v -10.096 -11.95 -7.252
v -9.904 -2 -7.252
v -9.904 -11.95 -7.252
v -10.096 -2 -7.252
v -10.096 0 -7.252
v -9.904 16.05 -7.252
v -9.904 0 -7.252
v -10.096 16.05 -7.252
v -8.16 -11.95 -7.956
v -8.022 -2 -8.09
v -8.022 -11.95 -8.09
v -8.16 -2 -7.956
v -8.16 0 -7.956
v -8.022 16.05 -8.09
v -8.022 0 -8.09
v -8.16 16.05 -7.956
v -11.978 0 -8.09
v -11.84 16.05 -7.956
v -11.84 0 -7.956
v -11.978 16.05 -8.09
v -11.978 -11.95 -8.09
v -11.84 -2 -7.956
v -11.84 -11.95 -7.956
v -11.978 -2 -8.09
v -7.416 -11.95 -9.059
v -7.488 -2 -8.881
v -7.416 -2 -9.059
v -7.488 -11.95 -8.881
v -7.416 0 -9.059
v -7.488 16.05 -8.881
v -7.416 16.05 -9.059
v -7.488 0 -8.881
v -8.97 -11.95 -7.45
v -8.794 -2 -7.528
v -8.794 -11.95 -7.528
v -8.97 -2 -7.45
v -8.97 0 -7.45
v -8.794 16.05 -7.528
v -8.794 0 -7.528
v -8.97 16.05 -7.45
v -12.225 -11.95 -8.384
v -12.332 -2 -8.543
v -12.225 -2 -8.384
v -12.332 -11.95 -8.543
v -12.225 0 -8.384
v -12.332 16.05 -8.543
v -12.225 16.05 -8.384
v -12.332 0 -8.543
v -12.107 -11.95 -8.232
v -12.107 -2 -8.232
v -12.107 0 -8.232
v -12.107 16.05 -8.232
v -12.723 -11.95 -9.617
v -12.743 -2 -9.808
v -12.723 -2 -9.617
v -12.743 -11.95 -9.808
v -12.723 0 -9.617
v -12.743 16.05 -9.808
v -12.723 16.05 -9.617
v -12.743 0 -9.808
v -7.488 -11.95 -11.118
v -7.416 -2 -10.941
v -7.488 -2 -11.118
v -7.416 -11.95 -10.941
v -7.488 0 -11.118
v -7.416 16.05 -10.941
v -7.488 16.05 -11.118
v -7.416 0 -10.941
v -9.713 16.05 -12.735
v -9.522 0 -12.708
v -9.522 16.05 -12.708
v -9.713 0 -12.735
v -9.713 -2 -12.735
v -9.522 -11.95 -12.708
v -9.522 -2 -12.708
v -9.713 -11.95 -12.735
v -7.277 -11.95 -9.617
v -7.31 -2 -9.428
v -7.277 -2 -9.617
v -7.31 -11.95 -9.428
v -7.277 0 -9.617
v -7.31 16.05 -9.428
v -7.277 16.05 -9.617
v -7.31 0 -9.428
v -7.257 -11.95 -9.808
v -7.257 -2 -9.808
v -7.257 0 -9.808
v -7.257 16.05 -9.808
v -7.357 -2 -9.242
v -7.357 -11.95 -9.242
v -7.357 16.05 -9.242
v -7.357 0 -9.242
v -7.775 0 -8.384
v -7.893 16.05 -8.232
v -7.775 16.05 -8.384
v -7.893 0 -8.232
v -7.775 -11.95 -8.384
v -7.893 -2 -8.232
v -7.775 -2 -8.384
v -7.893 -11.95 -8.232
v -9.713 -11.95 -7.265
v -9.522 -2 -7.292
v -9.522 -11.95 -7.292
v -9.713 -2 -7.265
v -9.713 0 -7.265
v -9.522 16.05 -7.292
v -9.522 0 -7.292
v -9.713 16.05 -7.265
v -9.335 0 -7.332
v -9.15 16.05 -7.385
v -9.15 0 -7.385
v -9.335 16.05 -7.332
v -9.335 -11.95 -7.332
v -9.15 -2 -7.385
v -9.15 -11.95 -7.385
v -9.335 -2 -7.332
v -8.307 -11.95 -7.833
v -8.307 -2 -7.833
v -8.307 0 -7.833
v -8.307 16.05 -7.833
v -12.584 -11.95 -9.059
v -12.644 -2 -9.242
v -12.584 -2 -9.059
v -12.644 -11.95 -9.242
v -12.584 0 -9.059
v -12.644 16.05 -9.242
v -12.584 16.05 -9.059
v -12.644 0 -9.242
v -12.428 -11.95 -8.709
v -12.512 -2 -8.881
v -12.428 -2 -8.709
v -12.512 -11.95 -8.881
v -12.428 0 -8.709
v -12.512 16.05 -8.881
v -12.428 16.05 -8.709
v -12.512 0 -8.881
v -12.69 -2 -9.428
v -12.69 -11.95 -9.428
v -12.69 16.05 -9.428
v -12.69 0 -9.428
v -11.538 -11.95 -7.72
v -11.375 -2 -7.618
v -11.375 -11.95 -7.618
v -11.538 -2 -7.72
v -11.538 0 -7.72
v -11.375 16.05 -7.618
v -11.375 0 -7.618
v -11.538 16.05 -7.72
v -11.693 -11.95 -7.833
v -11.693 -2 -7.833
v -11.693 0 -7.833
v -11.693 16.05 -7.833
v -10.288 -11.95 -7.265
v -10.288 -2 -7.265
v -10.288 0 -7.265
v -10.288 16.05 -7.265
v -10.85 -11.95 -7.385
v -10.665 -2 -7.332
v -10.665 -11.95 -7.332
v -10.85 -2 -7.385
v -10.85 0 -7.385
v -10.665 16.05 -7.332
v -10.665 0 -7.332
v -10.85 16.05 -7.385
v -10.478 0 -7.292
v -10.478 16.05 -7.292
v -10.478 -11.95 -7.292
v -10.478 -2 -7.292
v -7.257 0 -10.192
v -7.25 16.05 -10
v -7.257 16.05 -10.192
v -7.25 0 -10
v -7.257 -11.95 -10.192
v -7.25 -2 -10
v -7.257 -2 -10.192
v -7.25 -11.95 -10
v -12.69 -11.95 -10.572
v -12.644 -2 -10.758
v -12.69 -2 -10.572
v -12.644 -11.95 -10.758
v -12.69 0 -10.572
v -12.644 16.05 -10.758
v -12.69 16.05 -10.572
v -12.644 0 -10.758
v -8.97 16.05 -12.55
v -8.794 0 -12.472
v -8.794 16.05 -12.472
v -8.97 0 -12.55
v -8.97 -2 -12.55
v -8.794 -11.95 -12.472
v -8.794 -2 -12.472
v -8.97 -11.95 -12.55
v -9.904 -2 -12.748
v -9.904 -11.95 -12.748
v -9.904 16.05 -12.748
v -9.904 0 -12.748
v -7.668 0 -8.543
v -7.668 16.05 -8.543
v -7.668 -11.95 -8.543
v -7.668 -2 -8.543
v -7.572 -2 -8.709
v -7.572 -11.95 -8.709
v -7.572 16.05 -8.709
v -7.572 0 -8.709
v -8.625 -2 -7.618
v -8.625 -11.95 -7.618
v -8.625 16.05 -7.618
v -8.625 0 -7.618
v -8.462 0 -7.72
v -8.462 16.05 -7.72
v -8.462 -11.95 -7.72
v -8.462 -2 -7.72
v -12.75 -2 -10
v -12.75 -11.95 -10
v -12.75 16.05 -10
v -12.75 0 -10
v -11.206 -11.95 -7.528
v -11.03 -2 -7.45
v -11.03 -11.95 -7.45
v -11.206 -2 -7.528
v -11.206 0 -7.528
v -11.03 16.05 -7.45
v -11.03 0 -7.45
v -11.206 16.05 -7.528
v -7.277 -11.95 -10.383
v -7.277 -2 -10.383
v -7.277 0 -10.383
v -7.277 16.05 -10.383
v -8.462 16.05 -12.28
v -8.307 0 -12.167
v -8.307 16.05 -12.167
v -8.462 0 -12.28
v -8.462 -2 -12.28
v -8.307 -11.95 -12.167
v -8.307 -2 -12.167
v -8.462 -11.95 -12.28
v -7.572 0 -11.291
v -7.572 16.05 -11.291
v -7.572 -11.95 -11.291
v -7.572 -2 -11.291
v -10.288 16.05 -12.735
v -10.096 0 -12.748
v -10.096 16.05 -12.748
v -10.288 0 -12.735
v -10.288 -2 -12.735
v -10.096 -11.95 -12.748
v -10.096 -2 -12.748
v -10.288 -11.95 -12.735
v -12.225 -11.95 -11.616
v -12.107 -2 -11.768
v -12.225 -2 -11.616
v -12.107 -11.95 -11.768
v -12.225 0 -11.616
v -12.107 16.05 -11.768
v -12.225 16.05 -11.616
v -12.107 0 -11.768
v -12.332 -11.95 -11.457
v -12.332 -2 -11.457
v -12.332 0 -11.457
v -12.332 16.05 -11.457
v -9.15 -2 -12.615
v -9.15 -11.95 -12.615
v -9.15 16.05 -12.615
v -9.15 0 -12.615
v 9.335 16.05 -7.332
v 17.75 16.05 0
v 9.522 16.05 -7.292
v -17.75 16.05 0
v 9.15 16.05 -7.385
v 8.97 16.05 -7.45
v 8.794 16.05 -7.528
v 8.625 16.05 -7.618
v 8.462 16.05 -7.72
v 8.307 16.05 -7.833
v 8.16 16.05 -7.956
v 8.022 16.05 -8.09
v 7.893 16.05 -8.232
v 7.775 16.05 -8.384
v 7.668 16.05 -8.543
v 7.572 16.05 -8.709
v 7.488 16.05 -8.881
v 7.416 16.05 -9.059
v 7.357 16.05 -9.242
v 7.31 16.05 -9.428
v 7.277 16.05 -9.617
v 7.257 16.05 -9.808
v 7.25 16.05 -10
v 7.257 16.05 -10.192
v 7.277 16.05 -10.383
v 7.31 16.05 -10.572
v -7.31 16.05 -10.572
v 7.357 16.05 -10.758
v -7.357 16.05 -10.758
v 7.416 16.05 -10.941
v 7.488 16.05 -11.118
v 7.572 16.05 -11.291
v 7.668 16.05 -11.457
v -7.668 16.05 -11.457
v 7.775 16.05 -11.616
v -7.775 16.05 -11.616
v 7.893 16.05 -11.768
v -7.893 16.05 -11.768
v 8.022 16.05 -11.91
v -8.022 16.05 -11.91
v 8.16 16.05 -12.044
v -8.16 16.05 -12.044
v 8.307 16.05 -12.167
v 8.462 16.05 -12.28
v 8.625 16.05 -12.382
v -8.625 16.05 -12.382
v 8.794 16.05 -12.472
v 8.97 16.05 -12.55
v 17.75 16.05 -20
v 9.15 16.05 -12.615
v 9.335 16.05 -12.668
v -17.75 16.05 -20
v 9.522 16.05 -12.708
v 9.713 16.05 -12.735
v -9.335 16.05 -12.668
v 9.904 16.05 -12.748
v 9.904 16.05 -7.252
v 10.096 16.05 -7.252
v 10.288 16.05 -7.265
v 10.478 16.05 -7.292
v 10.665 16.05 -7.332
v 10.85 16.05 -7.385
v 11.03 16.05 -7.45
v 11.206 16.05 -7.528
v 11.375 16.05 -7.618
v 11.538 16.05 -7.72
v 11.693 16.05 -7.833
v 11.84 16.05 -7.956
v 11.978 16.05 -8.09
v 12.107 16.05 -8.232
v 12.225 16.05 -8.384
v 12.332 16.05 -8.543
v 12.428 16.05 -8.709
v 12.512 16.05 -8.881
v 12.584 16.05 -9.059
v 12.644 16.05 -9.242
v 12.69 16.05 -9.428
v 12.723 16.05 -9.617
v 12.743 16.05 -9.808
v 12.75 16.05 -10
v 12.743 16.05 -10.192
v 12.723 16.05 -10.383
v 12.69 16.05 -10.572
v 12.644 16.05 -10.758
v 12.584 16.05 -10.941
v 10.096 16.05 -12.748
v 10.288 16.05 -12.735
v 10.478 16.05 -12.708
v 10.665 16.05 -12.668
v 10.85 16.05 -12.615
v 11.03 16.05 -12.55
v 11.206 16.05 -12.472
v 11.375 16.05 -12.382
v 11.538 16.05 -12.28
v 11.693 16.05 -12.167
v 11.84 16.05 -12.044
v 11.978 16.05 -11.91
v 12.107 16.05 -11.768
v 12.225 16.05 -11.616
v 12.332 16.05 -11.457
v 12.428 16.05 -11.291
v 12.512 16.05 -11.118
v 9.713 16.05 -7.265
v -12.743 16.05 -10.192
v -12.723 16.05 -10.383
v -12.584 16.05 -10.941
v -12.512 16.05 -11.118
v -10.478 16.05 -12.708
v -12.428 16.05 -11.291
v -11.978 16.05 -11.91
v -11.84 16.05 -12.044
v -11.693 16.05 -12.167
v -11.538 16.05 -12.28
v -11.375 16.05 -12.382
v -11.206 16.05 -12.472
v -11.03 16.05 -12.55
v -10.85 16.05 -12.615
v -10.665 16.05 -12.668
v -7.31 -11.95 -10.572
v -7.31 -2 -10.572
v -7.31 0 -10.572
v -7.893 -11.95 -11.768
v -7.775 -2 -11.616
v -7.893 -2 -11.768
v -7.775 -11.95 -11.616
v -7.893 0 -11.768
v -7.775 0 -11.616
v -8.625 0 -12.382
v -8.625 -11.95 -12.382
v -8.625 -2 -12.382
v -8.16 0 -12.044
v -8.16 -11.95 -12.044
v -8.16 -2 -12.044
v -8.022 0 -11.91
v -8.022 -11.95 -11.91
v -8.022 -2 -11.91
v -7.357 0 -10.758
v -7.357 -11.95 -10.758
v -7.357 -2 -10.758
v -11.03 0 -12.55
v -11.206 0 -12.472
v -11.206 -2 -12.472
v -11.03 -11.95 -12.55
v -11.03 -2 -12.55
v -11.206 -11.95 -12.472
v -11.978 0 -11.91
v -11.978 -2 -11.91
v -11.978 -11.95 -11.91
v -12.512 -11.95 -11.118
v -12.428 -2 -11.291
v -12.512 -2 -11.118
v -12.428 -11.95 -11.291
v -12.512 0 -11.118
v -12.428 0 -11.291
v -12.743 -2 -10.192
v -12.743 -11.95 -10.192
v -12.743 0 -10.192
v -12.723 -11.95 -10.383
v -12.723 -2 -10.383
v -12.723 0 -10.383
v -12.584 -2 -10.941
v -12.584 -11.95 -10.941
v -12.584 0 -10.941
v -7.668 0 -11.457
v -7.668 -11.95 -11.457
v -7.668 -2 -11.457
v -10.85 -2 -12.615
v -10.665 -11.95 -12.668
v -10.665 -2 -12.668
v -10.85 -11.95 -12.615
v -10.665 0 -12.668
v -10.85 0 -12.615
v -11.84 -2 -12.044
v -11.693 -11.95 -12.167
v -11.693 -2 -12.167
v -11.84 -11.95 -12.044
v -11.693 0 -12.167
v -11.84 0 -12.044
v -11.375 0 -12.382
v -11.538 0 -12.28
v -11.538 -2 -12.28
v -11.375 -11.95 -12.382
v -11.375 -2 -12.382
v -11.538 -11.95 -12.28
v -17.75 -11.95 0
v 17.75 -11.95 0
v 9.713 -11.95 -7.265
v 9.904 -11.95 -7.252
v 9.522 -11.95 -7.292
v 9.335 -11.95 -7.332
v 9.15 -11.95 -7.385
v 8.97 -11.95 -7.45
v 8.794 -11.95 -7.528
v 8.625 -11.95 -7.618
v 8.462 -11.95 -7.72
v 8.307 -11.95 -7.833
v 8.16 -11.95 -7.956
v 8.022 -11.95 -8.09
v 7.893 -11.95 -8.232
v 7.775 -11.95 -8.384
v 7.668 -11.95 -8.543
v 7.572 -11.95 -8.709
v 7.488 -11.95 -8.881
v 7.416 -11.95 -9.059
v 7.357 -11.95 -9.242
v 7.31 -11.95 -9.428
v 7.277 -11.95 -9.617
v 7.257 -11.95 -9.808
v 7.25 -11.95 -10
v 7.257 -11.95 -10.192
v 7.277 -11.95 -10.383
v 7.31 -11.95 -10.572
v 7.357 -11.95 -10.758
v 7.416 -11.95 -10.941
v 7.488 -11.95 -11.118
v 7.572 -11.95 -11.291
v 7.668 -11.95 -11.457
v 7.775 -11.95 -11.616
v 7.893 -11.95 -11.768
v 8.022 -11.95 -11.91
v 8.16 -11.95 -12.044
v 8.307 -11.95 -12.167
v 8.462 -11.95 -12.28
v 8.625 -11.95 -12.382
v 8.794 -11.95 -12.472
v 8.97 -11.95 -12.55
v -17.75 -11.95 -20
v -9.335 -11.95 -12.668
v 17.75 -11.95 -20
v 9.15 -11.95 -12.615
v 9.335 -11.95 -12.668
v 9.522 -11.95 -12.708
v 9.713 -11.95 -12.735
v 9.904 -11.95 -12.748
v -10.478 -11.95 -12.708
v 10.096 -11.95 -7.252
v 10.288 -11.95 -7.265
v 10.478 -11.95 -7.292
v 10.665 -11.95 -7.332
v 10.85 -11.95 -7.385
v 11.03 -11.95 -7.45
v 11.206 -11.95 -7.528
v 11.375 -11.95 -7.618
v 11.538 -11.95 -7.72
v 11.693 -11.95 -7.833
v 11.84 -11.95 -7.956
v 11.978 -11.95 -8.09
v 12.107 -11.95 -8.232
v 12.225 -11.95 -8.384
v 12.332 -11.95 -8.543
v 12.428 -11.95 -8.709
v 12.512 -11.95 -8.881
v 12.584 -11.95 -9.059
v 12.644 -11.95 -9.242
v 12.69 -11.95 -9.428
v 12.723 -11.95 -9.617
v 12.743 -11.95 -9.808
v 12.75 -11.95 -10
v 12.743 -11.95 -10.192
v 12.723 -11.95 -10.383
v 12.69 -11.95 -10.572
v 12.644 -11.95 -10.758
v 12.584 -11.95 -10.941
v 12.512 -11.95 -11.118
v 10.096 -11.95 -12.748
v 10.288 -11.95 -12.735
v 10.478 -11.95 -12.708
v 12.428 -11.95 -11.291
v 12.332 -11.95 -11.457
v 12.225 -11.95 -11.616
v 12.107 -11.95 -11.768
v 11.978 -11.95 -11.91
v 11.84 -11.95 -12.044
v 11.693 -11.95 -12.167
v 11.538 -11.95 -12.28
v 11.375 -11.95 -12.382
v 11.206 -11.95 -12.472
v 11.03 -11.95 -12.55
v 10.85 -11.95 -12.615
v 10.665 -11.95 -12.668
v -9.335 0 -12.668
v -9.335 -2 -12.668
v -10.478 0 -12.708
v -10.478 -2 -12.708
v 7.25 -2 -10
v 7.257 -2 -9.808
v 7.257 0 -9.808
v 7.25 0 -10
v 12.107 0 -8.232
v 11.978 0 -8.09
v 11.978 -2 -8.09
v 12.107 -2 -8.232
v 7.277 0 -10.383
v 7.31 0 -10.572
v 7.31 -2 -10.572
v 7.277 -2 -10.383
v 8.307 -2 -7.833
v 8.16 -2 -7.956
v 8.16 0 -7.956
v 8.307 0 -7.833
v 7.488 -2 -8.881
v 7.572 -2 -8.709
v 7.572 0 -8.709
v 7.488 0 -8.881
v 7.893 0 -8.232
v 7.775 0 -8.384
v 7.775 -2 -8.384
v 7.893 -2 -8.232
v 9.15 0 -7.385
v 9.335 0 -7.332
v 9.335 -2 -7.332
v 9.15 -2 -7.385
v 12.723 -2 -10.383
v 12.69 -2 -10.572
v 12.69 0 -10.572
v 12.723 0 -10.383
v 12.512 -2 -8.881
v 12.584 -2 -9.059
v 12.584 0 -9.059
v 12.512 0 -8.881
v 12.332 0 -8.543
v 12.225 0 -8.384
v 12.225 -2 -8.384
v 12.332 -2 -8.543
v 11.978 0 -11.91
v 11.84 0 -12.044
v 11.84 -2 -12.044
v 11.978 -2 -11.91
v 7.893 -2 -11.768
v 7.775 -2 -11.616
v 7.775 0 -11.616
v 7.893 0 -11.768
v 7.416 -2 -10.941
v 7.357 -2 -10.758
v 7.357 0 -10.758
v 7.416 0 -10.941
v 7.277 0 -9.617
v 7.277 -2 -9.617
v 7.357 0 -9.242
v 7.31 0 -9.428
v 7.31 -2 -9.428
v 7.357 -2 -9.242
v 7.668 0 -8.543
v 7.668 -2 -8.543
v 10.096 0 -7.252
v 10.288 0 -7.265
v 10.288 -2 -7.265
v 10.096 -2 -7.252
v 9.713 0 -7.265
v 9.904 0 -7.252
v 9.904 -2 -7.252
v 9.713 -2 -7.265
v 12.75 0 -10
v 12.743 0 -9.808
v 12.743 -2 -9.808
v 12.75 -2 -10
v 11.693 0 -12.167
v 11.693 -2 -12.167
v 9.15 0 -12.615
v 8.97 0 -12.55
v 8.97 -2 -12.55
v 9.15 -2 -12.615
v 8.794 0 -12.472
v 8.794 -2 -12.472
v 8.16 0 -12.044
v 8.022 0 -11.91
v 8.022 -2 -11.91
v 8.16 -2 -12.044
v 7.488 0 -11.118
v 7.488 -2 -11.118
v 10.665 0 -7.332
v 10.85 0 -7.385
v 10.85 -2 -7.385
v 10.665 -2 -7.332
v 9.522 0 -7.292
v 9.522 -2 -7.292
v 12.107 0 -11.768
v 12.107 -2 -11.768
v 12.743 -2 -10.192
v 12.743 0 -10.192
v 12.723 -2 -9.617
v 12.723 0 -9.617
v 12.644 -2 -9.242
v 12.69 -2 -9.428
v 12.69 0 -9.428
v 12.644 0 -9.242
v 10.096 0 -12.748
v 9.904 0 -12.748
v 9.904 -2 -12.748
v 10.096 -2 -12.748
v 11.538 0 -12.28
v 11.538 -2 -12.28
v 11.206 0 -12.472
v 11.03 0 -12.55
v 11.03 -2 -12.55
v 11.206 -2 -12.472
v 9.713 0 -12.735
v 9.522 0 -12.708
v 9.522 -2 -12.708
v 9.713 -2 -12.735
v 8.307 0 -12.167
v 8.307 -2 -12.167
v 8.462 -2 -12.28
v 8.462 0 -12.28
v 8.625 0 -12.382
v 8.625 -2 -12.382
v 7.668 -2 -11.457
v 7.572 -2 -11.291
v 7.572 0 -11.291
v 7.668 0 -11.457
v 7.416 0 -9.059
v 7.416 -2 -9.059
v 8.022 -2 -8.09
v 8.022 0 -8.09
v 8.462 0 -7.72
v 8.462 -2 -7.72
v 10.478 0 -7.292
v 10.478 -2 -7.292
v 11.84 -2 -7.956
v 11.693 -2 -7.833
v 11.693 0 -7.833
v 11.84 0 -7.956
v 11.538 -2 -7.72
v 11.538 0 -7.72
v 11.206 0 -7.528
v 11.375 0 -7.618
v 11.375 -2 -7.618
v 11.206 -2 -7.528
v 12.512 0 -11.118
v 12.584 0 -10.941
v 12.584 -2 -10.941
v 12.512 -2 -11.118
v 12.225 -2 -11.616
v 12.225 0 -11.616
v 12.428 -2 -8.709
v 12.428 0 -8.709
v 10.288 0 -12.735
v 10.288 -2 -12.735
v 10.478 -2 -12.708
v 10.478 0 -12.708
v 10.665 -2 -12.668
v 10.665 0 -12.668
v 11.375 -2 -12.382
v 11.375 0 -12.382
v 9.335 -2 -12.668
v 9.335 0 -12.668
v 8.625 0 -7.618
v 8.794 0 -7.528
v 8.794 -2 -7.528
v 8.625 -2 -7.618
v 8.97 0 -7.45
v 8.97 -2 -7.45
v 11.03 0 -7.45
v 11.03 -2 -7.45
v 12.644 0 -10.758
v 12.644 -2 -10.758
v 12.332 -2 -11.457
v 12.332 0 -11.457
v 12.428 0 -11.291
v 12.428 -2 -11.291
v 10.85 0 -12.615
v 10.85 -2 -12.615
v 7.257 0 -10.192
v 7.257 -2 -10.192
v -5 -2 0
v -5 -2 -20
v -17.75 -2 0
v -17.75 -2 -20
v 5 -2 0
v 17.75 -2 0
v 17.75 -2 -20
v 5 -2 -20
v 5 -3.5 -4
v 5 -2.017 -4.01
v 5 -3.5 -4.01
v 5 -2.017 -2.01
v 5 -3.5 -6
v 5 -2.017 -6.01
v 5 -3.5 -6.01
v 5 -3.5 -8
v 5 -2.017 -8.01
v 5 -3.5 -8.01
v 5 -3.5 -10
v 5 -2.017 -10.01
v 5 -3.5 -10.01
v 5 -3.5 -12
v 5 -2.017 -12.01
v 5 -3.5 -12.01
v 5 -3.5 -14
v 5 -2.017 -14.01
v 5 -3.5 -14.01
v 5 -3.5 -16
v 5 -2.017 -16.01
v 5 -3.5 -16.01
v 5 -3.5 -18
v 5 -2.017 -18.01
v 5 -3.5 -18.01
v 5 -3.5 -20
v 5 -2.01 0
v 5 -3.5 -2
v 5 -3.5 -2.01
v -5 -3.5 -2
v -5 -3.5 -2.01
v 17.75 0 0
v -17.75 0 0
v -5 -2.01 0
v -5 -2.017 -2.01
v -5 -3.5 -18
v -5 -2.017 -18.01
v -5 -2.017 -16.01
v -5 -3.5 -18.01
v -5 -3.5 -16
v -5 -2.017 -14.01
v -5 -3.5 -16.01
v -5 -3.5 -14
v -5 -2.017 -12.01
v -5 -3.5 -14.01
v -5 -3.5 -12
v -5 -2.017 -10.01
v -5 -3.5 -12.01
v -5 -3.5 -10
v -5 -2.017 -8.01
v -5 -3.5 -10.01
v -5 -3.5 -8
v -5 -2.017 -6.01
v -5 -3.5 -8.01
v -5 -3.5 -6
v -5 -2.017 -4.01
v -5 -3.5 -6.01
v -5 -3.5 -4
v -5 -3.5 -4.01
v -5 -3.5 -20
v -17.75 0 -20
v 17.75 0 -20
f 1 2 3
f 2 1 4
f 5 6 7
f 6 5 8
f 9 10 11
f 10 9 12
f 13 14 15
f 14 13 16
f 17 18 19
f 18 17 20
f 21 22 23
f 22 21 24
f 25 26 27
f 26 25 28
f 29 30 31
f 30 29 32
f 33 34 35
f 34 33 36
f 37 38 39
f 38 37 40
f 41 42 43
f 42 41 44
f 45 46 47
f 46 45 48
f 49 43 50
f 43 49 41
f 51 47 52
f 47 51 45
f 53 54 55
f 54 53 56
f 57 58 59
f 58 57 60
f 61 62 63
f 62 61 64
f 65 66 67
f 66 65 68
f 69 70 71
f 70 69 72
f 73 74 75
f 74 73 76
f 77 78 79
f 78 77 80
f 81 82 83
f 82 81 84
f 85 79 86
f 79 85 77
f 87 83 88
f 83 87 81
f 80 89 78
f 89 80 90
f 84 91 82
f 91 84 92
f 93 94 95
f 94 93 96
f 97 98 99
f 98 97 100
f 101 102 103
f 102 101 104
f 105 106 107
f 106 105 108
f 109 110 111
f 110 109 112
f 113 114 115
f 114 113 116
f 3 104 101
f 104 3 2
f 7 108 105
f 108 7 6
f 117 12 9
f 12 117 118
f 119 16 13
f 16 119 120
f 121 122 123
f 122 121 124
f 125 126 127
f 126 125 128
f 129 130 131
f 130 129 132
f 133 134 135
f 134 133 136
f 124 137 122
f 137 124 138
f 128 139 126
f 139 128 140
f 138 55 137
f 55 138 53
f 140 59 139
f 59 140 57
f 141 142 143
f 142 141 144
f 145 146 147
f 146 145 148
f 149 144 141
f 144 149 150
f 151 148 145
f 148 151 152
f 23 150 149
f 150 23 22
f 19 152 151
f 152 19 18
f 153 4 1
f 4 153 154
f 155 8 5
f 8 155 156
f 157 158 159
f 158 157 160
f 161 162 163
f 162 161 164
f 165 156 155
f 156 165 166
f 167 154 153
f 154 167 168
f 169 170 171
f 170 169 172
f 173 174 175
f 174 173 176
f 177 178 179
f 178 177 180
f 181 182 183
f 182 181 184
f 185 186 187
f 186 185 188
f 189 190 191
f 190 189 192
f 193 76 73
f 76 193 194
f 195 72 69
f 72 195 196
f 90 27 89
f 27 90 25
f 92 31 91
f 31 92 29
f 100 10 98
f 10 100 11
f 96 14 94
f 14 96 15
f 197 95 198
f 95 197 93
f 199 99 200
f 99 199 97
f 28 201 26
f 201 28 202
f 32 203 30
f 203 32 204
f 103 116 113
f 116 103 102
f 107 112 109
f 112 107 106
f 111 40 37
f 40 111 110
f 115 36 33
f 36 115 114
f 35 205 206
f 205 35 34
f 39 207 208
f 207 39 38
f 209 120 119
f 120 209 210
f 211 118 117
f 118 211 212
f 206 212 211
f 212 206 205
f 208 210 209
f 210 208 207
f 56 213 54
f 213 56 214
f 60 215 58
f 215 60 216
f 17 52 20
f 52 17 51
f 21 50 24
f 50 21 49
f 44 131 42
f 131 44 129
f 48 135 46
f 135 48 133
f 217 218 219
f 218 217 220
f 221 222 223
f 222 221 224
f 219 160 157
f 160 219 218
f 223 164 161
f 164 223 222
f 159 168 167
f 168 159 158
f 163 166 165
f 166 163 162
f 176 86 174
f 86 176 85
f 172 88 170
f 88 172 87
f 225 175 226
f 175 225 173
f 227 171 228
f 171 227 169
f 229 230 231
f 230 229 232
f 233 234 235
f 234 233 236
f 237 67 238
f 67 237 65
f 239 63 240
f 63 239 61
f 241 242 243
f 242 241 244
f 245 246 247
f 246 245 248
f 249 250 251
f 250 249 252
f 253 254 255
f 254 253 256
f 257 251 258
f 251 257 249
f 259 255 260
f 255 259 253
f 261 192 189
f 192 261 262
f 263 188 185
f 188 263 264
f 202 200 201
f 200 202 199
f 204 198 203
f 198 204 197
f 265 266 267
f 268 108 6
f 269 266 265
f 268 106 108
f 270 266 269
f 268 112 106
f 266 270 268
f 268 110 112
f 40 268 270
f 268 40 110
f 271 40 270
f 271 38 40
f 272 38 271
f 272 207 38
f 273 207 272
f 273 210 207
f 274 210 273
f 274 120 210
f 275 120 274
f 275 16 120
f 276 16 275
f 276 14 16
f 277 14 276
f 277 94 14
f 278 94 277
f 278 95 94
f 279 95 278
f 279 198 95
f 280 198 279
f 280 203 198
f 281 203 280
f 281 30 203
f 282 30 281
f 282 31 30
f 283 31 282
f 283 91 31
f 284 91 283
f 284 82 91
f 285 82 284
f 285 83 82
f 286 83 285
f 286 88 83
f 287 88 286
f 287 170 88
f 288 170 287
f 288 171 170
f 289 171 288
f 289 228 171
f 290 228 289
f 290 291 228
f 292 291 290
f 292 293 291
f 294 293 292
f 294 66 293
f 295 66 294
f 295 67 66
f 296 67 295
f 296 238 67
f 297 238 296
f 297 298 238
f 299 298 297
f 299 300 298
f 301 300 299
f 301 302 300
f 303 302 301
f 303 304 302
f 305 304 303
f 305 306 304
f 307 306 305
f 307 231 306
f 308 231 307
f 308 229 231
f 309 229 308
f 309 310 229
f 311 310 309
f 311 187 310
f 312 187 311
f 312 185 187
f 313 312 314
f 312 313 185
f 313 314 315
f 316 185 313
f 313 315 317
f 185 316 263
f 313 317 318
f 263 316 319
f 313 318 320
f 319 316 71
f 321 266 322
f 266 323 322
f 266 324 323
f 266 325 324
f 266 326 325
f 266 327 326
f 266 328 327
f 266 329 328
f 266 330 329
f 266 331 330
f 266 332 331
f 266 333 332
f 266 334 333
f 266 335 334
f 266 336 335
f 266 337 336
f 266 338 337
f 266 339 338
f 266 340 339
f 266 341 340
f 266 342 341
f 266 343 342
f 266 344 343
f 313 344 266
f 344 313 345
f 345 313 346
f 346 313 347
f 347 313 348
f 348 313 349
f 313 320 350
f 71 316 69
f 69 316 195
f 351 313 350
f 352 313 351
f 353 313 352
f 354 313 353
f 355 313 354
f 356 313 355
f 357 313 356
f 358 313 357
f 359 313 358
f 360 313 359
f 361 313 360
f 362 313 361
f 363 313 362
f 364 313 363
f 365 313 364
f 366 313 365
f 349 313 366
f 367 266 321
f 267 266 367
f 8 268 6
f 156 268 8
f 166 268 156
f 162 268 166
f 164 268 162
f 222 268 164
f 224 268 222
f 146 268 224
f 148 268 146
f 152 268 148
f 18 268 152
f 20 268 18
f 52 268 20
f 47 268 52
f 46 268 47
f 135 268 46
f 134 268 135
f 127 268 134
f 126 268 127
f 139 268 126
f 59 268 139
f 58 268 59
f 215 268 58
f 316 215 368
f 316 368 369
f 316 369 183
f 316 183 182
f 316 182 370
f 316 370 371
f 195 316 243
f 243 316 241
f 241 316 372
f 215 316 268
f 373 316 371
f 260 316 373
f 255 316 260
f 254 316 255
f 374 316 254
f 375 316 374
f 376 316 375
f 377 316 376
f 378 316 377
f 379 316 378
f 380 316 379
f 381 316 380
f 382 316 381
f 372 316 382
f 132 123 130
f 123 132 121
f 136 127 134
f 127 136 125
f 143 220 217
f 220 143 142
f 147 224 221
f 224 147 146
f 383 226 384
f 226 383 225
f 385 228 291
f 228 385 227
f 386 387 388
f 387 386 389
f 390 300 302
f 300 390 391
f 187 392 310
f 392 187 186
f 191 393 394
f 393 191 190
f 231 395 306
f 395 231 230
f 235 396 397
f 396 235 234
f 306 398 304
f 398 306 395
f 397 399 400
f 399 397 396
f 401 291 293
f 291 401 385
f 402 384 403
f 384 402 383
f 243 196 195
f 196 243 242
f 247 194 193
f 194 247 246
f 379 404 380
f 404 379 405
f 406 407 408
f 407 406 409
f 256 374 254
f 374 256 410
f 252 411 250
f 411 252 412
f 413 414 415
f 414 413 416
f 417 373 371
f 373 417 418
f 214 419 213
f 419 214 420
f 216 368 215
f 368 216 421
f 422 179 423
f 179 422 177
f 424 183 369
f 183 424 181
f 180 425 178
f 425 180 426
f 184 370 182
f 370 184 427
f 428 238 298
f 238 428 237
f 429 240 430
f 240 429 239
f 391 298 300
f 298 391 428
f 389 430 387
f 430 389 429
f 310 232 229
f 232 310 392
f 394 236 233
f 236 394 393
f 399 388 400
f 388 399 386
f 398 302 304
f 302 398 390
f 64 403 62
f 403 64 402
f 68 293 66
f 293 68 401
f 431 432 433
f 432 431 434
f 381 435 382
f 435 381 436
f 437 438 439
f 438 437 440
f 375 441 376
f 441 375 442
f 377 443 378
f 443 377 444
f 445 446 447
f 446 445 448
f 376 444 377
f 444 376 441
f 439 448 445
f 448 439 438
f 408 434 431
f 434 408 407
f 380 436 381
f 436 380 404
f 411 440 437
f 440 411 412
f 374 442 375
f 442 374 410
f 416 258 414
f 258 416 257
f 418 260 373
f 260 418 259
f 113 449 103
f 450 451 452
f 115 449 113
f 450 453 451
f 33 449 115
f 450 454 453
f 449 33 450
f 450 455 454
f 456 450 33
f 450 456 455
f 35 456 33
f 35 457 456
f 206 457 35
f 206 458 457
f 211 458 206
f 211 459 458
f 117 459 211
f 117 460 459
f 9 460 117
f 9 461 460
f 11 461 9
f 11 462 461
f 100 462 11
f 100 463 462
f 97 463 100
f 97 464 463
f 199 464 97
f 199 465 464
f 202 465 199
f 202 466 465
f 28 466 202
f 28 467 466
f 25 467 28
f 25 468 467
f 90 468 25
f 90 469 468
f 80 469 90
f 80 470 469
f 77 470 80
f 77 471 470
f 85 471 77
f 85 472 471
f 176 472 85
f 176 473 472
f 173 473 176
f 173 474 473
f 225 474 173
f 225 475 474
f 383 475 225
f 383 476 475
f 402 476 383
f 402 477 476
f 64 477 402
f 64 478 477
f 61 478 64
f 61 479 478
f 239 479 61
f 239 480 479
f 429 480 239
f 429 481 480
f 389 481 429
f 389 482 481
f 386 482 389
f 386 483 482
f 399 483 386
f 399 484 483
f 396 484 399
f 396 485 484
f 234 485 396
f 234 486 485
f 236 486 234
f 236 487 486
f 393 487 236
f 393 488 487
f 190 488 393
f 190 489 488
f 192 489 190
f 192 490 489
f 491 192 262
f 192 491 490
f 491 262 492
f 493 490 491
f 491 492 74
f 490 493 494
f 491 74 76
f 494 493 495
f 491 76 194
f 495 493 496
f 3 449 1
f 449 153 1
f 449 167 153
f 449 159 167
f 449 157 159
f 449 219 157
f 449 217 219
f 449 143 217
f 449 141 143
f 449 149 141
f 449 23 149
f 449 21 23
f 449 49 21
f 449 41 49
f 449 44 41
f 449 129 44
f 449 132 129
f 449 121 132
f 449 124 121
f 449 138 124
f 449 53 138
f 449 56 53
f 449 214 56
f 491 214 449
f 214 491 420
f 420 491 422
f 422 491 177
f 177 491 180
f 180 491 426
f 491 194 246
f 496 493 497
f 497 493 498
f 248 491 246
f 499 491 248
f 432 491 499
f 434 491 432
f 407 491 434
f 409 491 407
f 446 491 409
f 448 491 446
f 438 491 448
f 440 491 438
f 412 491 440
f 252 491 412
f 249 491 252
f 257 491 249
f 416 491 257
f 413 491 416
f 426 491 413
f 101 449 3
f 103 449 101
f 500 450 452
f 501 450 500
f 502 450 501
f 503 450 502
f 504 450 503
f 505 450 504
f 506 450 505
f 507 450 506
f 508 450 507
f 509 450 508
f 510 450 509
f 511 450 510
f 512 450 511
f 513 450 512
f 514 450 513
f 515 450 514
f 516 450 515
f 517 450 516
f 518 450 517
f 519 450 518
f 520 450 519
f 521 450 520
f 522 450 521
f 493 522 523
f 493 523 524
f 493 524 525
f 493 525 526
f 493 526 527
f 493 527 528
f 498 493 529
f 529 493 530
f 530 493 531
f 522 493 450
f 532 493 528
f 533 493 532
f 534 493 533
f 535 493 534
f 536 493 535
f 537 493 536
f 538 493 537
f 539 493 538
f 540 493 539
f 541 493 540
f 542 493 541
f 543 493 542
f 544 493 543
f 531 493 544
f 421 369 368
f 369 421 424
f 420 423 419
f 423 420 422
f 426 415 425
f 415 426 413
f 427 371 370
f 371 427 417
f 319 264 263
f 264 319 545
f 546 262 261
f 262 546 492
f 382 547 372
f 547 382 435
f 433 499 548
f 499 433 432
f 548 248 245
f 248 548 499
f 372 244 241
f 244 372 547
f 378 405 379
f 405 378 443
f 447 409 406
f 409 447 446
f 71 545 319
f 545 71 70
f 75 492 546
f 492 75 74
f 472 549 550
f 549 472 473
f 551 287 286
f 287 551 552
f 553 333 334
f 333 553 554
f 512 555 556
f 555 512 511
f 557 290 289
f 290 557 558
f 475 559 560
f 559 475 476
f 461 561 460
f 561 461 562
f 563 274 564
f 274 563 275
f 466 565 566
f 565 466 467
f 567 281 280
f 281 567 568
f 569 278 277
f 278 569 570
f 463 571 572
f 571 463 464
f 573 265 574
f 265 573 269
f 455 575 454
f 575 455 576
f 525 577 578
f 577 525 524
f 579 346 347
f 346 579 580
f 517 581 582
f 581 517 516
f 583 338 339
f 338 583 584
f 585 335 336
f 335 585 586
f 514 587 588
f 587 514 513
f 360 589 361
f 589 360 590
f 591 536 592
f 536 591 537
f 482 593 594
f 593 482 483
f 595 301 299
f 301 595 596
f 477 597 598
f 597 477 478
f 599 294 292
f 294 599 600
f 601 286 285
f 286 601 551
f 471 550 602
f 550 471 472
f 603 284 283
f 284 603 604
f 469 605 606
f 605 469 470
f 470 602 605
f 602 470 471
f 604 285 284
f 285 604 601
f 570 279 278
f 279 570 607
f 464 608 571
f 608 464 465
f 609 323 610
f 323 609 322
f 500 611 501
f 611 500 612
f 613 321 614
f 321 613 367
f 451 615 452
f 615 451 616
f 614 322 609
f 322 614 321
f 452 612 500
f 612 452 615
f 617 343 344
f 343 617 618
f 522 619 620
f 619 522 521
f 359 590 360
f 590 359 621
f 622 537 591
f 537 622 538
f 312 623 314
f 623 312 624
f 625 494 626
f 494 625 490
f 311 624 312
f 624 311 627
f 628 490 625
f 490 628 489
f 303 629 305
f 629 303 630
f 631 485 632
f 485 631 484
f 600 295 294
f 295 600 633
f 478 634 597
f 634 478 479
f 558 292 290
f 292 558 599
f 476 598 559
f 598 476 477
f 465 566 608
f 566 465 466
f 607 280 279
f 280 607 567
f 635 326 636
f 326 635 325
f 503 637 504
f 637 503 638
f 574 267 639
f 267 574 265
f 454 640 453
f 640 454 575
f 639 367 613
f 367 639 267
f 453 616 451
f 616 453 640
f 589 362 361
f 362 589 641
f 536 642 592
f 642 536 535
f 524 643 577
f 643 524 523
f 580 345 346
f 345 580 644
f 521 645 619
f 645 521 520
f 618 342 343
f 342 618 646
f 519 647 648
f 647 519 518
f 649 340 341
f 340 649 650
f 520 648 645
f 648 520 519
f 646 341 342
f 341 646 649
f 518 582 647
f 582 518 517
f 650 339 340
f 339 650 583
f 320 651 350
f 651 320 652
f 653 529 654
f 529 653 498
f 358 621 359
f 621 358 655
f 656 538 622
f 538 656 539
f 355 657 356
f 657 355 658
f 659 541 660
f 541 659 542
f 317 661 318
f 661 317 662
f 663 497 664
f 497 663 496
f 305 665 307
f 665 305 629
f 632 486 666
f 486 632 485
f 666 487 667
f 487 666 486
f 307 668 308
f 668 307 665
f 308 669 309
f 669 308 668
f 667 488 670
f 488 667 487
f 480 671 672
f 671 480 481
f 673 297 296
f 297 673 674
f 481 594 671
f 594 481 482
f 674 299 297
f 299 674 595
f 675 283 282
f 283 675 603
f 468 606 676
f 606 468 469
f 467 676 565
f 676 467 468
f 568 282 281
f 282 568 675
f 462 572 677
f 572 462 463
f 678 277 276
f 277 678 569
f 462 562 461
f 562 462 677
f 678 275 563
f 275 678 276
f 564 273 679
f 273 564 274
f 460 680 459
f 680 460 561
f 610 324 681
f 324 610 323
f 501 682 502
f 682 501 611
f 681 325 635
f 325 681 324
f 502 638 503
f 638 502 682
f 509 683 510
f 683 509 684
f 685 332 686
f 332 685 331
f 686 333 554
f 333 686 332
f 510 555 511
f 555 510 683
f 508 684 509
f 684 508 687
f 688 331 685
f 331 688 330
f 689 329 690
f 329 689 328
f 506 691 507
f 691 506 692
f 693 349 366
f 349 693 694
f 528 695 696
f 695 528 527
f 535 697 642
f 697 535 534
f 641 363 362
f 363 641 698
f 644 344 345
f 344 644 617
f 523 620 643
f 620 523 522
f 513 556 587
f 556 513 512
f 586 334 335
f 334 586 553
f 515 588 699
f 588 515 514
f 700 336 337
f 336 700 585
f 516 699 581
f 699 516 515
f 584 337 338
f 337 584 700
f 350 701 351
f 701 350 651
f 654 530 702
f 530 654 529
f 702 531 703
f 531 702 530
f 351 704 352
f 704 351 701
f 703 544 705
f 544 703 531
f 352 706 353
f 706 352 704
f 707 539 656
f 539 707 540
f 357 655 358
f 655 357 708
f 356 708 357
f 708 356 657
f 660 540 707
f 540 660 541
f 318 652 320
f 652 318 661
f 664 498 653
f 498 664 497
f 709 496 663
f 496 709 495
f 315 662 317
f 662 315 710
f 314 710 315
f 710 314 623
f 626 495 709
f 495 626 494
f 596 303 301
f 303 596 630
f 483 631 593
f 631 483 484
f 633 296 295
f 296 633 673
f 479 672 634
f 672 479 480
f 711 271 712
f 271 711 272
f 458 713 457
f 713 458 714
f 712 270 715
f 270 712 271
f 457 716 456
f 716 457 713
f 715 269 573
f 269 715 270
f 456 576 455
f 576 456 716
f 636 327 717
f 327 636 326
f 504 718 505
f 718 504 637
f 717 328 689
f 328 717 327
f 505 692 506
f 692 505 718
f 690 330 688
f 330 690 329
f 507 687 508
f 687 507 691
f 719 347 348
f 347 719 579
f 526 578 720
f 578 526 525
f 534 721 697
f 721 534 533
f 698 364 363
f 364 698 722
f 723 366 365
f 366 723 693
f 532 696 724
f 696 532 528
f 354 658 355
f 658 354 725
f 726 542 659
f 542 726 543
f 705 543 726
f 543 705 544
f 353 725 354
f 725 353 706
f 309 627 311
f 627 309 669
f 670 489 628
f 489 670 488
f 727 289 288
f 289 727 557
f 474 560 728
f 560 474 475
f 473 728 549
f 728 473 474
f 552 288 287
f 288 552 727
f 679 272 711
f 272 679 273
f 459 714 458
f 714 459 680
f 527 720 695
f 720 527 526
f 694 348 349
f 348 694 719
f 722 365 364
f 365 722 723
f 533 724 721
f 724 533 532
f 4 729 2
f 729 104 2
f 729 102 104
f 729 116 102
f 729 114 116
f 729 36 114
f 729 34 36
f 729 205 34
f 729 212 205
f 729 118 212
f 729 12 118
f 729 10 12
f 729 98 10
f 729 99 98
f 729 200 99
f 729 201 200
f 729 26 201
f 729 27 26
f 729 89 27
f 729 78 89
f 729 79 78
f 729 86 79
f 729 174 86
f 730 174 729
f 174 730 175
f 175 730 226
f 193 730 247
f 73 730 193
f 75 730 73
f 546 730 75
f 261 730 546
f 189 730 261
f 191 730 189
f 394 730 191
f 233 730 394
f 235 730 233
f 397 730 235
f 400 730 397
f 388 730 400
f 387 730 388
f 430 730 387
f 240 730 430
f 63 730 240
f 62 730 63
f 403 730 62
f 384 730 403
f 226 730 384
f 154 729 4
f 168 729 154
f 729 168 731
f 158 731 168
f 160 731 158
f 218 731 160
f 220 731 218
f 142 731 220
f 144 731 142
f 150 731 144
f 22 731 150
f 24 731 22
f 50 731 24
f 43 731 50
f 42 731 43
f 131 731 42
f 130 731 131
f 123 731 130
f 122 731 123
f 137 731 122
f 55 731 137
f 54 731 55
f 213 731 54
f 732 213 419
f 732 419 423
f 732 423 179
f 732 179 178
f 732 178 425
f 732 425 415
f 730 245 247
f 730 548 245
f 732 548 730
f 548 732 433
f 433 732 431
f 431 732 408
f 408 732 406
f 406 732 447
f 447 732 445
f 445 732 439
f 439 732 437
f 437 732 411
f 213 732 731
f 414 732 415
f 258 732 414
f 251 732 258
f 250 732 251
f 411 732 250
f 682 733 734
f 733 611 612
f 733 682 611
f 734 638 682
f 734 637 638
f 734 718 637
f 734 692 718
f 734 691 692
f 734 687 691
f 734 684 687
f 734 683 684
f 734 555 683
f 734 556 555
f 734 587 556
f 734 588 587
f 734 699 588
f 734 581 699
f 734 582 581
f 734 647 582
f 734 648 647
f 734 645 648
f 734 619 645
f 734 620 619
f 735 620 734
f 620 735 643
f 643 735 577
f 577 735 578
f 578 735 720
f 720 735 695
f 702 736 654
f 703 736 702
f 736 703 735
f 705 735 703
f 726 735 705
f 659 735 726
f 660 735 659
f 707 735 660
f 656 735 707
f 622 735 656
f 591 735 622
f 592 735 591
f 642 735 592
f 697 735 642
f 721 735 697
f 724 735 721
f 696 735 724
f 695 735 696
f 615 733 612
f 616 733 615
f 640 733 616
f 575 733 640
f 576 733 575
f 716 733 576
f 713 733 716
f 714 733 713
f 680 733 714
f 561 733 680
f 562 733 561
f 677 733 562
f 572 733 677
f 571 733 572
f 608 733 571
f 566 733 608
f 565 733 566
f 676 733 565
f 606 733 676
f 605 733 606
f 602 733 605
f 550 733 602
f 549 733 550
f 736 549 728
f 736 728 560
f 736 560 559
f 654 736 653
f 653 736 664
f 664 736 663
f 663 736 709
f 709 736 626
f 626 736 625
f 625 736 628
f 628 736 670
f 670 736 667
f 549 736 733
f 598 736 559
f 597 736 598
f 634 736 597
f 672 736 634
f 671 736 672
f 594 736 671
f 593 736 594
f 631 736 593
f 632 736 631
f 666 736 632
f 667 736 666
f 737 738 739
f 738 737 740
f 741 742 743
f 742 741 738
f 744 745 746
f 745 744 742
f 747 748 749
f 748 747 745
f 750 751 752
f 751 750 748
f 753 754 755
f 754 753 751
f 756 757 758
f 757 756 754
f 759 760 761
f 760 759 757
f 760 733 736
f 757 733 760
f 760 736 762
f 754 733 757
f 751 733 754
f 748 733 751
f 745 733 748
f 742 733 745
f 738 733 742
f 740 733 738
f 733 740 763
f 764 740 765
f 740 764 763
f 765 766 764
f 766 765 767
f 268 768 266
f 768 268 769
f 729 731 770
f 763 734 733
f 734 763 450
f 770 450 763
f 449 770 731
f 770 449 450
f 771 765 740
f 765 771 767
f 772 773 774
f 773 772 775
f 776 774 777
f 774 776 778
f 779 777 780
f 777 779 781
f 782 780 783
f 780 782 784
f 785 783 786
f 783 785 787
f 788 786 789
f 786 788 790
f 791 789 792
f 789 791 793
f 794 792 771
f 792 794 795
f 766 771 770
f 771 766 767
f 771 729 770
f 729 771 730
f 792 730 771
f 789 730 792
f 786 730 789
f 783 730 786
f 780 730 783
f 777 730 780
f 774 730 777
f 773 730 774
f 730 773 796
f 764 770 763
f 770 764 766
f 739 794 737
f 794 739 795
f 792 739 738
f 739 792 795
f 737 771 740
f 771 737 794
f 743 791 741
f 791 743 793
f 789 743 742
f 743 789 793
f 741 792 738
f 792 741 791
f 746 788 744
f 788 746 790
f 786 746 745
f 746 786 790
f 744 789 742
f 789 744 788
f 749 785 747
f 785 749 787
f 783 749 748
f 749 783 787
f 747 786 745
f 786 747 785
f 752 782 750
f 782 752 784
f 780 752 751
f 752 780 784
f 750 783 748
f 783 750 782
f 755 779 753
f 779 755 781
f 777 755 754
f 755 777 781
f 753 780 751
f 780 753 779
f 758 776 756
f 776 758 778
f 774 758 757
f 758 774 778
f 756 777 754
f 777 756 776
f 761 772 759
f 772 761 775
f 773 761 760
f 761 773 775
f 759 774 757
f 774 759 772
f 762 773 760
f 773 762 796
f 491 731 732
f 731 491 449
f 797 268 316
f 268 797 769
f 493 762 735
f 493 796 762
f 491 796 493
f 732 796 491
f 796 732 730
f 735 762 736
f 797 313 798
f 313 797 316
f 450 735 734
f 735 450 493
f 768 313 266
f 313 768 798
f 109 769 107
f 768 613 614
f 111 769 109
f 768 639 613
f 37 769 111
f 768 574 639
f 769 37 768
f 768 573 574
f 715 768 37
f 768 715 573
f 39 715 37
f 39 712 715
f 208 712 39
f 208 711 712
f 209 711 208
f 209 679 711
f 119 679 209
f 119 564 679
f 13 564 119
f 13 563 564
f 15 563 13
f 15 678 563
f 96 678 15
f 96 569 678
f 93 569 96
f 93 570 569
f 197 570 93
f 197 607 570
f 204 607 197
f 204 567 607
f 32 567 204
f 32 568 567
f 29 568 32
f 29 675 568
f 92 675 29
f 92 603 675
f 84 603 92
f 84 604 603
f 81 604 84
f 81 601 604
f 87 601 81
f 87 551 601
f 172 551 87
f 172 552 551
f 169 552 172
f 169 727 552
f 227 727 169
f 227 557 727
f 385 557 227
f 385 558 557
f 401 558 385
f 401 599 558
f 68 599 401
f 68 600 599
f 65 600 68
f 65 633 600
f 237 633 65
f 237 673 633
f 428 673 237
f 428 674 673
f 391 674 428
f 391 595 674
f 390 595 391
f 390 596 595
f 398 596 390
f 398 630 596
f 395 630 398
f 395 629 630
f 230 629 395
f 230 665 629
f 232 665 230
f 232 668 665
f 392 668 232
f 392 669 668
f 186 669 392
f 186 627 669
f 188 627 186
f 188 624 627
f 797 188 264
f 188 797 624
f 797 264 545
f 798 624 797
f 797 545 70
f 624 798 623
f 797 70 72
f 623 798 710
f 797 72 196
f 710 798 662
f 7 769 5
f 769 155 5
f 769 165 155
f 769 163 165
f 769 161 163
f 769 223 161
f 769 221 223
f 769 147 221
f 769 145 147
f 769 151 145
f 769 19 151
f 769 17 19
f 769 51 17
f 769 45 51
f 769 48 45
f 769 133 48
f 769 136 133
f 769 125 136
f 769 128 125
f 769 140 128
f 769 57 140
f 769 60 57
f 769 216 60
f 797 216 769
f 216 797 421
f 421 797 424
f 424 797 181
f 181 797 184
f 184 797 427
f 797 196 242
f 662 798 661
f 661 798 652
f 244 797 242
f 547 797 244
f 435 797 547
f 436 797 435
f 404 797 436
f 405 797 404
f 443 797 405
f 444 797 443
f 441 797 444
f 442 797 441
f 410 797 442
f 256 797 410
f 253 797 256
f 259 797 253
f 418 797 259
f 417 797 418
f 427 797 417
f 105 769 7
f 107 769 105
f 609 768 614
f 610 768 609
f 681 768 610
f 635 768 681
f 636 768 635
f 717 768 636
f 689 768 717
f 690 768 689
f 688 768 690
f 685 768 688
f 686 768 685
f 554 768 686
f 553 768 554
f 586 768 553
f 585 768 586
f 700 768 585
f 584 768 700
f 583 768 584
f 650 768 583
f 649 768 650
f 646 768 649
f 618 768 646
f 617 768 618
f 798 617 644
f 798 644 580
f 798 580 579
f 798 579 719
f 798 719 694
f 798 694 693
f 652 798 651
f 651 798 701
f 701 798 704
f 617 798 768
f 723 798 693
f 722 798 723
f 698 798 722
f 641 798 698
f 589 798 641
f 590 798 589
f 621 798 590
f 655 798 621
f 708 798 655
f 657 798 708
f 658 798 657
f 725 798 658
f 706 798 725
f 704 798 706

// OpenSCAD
// file: constants.scad
tolerance=0.7;
oversize = 0.7;
lengthHoleSpacing=20;
wallWidth=5;
//vslotIndentHeight=4;
vslotIndentHeight= 1;
//indentWidthOutside = 6;
indentWidthOutside = 9;
//indentWidthInside = 6;
indentWidthInside = 7;
sectionWidth=20;
profileSize=20;
sectionCountWidth = 2;
sectionCountDepth = 1;
extrusionWidth=profileSize*sectionCountWidth;
extrusionDepth=profileSize*sectionCountDepth;
nema17Width = 42.3;
nema17HoleRadius = 11.05 + tolerance/2;
nema17Height = 3.5*extrusionWidth;
nema17BoltSpacing = 31;
nema17BeltHoleHeight = 8;
nema17BeltOffsetFromTopExtrusion = 8;
nema17BeltHeightWidth = 15;
wallSpacing=5;
screwHeight = wallSpacing+vslotIndentHeight;
// main file
include<constants.scad>;
use<vslot.scad>;

// external values
vWheelHoleSeparation = 5.95;
wallThickness = 8;
plateHoleSideOffset = 11;
nema23ScrewHoleSeparation = 47.14;
nema23ScrewDiameter = 5;
nema23Offset = 10;
smallBearingDiameter=16;
cBeamWidth=80;

newH = vWheelHoleSeparation+plateHoleSideOffset+nema23Offset-smallBearingDiameter/2-wallThickness;

// inherited values

beltWidth = 10;

beltHeight = 6;

screwDiameter = 5.5;

screwHeadDiameter = 10;

nutTrapWidth = 8;

nutTrapHeight = 3;

separation = 2;

beltPitch = 2;

beltToothHeight = 1.5;

wallWidth = 5;

holeSpacing = 20;

longScrewHeight = 40 - wallThickness-4;

extraOffset = 0;

height = 20;
mirror([0,0,1]) 
difference() {
    translate([-holeSpacing/2-screwDiameter/2-wallWidth,-separation/2-newH,0])
        cube([holeSpacing+screwDiameter+2*wallWidth,longScrewHeight, height]);
    
    translate([-holeSpacing/2-screwDiameter/2-wallWidth,-separation,0])
        cube([holeSpacing+screwDiameter+2*wallWidth,separation, height]);
    
    for (i=[[0,0,0],[1,0,0]]) mirror(i) {
        translate([-holeSpacing/2, -separation/2-newH, height/2])
        rotate([-90,0,0]) {
            cylinder(r=screwDiameter/2, h=longScrewHeight, $fn=90);
        }
    }
    
    
    translate([-beltWidth/2+extraOffset,-beltToothHeight-separation,0]) {
        for(i=[0:beltPitch:height]) {
            hull() {
                translate([0,beltToothHeight-0.01,i])
                    cube([beltWidth,0.01,0.01]);
                translate([0,0,i+beltPitch])
                    cube([beltWidth,beltToothHeight,0.01]);
            }
        }
    }
    
}
